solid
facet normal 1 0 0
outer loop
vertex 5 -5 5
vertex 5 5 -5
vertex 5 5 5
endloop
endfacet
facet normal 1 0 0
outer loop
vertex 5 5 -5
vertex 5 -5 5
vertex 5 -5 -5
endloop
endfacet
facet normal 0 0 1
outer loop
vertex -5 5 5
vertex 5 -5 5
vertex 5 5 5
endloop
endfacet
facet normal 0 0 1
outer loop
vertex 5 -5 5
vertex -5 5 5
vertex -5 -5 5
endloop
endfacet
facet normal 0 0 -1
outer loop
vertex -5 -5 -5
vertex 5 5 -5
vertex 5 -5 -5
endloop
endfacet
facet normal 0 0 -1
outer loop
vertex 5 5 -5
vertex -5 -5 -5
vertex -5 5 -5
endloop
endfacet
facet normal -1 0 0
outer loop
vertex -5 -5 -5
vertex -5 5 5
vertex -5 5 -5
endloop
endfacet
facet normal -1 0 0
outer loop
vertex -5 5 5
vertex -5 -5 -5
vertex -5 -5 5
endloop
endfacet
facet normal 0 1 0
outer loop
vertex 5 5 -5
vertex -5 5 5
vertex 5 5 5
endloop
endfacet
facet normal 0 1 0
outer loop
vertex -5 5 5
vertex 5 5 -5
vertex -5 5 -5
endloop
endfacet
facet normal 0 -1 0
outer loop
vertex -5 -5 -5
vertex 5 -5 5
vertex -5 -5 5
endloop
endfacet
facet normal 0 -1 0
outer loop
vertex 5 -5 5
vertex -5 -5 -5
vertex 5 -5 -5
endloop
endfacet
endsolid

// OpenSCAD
// Define the size of the cube
cube_size = 10; // Adjust the size as needed

// Function to create a single cube
module cube_component() {
    cube([cube_size, cube_size, cube_size], center = true);
}

// Arrange six identical cubes in a uniform vertical position
module layer_1() {
    for (i = [0:5]) {
        translate([0, 0, 0]) // All cubes occupy the same position
        cube_component();
    }
}

// Render the model
layer_1();
